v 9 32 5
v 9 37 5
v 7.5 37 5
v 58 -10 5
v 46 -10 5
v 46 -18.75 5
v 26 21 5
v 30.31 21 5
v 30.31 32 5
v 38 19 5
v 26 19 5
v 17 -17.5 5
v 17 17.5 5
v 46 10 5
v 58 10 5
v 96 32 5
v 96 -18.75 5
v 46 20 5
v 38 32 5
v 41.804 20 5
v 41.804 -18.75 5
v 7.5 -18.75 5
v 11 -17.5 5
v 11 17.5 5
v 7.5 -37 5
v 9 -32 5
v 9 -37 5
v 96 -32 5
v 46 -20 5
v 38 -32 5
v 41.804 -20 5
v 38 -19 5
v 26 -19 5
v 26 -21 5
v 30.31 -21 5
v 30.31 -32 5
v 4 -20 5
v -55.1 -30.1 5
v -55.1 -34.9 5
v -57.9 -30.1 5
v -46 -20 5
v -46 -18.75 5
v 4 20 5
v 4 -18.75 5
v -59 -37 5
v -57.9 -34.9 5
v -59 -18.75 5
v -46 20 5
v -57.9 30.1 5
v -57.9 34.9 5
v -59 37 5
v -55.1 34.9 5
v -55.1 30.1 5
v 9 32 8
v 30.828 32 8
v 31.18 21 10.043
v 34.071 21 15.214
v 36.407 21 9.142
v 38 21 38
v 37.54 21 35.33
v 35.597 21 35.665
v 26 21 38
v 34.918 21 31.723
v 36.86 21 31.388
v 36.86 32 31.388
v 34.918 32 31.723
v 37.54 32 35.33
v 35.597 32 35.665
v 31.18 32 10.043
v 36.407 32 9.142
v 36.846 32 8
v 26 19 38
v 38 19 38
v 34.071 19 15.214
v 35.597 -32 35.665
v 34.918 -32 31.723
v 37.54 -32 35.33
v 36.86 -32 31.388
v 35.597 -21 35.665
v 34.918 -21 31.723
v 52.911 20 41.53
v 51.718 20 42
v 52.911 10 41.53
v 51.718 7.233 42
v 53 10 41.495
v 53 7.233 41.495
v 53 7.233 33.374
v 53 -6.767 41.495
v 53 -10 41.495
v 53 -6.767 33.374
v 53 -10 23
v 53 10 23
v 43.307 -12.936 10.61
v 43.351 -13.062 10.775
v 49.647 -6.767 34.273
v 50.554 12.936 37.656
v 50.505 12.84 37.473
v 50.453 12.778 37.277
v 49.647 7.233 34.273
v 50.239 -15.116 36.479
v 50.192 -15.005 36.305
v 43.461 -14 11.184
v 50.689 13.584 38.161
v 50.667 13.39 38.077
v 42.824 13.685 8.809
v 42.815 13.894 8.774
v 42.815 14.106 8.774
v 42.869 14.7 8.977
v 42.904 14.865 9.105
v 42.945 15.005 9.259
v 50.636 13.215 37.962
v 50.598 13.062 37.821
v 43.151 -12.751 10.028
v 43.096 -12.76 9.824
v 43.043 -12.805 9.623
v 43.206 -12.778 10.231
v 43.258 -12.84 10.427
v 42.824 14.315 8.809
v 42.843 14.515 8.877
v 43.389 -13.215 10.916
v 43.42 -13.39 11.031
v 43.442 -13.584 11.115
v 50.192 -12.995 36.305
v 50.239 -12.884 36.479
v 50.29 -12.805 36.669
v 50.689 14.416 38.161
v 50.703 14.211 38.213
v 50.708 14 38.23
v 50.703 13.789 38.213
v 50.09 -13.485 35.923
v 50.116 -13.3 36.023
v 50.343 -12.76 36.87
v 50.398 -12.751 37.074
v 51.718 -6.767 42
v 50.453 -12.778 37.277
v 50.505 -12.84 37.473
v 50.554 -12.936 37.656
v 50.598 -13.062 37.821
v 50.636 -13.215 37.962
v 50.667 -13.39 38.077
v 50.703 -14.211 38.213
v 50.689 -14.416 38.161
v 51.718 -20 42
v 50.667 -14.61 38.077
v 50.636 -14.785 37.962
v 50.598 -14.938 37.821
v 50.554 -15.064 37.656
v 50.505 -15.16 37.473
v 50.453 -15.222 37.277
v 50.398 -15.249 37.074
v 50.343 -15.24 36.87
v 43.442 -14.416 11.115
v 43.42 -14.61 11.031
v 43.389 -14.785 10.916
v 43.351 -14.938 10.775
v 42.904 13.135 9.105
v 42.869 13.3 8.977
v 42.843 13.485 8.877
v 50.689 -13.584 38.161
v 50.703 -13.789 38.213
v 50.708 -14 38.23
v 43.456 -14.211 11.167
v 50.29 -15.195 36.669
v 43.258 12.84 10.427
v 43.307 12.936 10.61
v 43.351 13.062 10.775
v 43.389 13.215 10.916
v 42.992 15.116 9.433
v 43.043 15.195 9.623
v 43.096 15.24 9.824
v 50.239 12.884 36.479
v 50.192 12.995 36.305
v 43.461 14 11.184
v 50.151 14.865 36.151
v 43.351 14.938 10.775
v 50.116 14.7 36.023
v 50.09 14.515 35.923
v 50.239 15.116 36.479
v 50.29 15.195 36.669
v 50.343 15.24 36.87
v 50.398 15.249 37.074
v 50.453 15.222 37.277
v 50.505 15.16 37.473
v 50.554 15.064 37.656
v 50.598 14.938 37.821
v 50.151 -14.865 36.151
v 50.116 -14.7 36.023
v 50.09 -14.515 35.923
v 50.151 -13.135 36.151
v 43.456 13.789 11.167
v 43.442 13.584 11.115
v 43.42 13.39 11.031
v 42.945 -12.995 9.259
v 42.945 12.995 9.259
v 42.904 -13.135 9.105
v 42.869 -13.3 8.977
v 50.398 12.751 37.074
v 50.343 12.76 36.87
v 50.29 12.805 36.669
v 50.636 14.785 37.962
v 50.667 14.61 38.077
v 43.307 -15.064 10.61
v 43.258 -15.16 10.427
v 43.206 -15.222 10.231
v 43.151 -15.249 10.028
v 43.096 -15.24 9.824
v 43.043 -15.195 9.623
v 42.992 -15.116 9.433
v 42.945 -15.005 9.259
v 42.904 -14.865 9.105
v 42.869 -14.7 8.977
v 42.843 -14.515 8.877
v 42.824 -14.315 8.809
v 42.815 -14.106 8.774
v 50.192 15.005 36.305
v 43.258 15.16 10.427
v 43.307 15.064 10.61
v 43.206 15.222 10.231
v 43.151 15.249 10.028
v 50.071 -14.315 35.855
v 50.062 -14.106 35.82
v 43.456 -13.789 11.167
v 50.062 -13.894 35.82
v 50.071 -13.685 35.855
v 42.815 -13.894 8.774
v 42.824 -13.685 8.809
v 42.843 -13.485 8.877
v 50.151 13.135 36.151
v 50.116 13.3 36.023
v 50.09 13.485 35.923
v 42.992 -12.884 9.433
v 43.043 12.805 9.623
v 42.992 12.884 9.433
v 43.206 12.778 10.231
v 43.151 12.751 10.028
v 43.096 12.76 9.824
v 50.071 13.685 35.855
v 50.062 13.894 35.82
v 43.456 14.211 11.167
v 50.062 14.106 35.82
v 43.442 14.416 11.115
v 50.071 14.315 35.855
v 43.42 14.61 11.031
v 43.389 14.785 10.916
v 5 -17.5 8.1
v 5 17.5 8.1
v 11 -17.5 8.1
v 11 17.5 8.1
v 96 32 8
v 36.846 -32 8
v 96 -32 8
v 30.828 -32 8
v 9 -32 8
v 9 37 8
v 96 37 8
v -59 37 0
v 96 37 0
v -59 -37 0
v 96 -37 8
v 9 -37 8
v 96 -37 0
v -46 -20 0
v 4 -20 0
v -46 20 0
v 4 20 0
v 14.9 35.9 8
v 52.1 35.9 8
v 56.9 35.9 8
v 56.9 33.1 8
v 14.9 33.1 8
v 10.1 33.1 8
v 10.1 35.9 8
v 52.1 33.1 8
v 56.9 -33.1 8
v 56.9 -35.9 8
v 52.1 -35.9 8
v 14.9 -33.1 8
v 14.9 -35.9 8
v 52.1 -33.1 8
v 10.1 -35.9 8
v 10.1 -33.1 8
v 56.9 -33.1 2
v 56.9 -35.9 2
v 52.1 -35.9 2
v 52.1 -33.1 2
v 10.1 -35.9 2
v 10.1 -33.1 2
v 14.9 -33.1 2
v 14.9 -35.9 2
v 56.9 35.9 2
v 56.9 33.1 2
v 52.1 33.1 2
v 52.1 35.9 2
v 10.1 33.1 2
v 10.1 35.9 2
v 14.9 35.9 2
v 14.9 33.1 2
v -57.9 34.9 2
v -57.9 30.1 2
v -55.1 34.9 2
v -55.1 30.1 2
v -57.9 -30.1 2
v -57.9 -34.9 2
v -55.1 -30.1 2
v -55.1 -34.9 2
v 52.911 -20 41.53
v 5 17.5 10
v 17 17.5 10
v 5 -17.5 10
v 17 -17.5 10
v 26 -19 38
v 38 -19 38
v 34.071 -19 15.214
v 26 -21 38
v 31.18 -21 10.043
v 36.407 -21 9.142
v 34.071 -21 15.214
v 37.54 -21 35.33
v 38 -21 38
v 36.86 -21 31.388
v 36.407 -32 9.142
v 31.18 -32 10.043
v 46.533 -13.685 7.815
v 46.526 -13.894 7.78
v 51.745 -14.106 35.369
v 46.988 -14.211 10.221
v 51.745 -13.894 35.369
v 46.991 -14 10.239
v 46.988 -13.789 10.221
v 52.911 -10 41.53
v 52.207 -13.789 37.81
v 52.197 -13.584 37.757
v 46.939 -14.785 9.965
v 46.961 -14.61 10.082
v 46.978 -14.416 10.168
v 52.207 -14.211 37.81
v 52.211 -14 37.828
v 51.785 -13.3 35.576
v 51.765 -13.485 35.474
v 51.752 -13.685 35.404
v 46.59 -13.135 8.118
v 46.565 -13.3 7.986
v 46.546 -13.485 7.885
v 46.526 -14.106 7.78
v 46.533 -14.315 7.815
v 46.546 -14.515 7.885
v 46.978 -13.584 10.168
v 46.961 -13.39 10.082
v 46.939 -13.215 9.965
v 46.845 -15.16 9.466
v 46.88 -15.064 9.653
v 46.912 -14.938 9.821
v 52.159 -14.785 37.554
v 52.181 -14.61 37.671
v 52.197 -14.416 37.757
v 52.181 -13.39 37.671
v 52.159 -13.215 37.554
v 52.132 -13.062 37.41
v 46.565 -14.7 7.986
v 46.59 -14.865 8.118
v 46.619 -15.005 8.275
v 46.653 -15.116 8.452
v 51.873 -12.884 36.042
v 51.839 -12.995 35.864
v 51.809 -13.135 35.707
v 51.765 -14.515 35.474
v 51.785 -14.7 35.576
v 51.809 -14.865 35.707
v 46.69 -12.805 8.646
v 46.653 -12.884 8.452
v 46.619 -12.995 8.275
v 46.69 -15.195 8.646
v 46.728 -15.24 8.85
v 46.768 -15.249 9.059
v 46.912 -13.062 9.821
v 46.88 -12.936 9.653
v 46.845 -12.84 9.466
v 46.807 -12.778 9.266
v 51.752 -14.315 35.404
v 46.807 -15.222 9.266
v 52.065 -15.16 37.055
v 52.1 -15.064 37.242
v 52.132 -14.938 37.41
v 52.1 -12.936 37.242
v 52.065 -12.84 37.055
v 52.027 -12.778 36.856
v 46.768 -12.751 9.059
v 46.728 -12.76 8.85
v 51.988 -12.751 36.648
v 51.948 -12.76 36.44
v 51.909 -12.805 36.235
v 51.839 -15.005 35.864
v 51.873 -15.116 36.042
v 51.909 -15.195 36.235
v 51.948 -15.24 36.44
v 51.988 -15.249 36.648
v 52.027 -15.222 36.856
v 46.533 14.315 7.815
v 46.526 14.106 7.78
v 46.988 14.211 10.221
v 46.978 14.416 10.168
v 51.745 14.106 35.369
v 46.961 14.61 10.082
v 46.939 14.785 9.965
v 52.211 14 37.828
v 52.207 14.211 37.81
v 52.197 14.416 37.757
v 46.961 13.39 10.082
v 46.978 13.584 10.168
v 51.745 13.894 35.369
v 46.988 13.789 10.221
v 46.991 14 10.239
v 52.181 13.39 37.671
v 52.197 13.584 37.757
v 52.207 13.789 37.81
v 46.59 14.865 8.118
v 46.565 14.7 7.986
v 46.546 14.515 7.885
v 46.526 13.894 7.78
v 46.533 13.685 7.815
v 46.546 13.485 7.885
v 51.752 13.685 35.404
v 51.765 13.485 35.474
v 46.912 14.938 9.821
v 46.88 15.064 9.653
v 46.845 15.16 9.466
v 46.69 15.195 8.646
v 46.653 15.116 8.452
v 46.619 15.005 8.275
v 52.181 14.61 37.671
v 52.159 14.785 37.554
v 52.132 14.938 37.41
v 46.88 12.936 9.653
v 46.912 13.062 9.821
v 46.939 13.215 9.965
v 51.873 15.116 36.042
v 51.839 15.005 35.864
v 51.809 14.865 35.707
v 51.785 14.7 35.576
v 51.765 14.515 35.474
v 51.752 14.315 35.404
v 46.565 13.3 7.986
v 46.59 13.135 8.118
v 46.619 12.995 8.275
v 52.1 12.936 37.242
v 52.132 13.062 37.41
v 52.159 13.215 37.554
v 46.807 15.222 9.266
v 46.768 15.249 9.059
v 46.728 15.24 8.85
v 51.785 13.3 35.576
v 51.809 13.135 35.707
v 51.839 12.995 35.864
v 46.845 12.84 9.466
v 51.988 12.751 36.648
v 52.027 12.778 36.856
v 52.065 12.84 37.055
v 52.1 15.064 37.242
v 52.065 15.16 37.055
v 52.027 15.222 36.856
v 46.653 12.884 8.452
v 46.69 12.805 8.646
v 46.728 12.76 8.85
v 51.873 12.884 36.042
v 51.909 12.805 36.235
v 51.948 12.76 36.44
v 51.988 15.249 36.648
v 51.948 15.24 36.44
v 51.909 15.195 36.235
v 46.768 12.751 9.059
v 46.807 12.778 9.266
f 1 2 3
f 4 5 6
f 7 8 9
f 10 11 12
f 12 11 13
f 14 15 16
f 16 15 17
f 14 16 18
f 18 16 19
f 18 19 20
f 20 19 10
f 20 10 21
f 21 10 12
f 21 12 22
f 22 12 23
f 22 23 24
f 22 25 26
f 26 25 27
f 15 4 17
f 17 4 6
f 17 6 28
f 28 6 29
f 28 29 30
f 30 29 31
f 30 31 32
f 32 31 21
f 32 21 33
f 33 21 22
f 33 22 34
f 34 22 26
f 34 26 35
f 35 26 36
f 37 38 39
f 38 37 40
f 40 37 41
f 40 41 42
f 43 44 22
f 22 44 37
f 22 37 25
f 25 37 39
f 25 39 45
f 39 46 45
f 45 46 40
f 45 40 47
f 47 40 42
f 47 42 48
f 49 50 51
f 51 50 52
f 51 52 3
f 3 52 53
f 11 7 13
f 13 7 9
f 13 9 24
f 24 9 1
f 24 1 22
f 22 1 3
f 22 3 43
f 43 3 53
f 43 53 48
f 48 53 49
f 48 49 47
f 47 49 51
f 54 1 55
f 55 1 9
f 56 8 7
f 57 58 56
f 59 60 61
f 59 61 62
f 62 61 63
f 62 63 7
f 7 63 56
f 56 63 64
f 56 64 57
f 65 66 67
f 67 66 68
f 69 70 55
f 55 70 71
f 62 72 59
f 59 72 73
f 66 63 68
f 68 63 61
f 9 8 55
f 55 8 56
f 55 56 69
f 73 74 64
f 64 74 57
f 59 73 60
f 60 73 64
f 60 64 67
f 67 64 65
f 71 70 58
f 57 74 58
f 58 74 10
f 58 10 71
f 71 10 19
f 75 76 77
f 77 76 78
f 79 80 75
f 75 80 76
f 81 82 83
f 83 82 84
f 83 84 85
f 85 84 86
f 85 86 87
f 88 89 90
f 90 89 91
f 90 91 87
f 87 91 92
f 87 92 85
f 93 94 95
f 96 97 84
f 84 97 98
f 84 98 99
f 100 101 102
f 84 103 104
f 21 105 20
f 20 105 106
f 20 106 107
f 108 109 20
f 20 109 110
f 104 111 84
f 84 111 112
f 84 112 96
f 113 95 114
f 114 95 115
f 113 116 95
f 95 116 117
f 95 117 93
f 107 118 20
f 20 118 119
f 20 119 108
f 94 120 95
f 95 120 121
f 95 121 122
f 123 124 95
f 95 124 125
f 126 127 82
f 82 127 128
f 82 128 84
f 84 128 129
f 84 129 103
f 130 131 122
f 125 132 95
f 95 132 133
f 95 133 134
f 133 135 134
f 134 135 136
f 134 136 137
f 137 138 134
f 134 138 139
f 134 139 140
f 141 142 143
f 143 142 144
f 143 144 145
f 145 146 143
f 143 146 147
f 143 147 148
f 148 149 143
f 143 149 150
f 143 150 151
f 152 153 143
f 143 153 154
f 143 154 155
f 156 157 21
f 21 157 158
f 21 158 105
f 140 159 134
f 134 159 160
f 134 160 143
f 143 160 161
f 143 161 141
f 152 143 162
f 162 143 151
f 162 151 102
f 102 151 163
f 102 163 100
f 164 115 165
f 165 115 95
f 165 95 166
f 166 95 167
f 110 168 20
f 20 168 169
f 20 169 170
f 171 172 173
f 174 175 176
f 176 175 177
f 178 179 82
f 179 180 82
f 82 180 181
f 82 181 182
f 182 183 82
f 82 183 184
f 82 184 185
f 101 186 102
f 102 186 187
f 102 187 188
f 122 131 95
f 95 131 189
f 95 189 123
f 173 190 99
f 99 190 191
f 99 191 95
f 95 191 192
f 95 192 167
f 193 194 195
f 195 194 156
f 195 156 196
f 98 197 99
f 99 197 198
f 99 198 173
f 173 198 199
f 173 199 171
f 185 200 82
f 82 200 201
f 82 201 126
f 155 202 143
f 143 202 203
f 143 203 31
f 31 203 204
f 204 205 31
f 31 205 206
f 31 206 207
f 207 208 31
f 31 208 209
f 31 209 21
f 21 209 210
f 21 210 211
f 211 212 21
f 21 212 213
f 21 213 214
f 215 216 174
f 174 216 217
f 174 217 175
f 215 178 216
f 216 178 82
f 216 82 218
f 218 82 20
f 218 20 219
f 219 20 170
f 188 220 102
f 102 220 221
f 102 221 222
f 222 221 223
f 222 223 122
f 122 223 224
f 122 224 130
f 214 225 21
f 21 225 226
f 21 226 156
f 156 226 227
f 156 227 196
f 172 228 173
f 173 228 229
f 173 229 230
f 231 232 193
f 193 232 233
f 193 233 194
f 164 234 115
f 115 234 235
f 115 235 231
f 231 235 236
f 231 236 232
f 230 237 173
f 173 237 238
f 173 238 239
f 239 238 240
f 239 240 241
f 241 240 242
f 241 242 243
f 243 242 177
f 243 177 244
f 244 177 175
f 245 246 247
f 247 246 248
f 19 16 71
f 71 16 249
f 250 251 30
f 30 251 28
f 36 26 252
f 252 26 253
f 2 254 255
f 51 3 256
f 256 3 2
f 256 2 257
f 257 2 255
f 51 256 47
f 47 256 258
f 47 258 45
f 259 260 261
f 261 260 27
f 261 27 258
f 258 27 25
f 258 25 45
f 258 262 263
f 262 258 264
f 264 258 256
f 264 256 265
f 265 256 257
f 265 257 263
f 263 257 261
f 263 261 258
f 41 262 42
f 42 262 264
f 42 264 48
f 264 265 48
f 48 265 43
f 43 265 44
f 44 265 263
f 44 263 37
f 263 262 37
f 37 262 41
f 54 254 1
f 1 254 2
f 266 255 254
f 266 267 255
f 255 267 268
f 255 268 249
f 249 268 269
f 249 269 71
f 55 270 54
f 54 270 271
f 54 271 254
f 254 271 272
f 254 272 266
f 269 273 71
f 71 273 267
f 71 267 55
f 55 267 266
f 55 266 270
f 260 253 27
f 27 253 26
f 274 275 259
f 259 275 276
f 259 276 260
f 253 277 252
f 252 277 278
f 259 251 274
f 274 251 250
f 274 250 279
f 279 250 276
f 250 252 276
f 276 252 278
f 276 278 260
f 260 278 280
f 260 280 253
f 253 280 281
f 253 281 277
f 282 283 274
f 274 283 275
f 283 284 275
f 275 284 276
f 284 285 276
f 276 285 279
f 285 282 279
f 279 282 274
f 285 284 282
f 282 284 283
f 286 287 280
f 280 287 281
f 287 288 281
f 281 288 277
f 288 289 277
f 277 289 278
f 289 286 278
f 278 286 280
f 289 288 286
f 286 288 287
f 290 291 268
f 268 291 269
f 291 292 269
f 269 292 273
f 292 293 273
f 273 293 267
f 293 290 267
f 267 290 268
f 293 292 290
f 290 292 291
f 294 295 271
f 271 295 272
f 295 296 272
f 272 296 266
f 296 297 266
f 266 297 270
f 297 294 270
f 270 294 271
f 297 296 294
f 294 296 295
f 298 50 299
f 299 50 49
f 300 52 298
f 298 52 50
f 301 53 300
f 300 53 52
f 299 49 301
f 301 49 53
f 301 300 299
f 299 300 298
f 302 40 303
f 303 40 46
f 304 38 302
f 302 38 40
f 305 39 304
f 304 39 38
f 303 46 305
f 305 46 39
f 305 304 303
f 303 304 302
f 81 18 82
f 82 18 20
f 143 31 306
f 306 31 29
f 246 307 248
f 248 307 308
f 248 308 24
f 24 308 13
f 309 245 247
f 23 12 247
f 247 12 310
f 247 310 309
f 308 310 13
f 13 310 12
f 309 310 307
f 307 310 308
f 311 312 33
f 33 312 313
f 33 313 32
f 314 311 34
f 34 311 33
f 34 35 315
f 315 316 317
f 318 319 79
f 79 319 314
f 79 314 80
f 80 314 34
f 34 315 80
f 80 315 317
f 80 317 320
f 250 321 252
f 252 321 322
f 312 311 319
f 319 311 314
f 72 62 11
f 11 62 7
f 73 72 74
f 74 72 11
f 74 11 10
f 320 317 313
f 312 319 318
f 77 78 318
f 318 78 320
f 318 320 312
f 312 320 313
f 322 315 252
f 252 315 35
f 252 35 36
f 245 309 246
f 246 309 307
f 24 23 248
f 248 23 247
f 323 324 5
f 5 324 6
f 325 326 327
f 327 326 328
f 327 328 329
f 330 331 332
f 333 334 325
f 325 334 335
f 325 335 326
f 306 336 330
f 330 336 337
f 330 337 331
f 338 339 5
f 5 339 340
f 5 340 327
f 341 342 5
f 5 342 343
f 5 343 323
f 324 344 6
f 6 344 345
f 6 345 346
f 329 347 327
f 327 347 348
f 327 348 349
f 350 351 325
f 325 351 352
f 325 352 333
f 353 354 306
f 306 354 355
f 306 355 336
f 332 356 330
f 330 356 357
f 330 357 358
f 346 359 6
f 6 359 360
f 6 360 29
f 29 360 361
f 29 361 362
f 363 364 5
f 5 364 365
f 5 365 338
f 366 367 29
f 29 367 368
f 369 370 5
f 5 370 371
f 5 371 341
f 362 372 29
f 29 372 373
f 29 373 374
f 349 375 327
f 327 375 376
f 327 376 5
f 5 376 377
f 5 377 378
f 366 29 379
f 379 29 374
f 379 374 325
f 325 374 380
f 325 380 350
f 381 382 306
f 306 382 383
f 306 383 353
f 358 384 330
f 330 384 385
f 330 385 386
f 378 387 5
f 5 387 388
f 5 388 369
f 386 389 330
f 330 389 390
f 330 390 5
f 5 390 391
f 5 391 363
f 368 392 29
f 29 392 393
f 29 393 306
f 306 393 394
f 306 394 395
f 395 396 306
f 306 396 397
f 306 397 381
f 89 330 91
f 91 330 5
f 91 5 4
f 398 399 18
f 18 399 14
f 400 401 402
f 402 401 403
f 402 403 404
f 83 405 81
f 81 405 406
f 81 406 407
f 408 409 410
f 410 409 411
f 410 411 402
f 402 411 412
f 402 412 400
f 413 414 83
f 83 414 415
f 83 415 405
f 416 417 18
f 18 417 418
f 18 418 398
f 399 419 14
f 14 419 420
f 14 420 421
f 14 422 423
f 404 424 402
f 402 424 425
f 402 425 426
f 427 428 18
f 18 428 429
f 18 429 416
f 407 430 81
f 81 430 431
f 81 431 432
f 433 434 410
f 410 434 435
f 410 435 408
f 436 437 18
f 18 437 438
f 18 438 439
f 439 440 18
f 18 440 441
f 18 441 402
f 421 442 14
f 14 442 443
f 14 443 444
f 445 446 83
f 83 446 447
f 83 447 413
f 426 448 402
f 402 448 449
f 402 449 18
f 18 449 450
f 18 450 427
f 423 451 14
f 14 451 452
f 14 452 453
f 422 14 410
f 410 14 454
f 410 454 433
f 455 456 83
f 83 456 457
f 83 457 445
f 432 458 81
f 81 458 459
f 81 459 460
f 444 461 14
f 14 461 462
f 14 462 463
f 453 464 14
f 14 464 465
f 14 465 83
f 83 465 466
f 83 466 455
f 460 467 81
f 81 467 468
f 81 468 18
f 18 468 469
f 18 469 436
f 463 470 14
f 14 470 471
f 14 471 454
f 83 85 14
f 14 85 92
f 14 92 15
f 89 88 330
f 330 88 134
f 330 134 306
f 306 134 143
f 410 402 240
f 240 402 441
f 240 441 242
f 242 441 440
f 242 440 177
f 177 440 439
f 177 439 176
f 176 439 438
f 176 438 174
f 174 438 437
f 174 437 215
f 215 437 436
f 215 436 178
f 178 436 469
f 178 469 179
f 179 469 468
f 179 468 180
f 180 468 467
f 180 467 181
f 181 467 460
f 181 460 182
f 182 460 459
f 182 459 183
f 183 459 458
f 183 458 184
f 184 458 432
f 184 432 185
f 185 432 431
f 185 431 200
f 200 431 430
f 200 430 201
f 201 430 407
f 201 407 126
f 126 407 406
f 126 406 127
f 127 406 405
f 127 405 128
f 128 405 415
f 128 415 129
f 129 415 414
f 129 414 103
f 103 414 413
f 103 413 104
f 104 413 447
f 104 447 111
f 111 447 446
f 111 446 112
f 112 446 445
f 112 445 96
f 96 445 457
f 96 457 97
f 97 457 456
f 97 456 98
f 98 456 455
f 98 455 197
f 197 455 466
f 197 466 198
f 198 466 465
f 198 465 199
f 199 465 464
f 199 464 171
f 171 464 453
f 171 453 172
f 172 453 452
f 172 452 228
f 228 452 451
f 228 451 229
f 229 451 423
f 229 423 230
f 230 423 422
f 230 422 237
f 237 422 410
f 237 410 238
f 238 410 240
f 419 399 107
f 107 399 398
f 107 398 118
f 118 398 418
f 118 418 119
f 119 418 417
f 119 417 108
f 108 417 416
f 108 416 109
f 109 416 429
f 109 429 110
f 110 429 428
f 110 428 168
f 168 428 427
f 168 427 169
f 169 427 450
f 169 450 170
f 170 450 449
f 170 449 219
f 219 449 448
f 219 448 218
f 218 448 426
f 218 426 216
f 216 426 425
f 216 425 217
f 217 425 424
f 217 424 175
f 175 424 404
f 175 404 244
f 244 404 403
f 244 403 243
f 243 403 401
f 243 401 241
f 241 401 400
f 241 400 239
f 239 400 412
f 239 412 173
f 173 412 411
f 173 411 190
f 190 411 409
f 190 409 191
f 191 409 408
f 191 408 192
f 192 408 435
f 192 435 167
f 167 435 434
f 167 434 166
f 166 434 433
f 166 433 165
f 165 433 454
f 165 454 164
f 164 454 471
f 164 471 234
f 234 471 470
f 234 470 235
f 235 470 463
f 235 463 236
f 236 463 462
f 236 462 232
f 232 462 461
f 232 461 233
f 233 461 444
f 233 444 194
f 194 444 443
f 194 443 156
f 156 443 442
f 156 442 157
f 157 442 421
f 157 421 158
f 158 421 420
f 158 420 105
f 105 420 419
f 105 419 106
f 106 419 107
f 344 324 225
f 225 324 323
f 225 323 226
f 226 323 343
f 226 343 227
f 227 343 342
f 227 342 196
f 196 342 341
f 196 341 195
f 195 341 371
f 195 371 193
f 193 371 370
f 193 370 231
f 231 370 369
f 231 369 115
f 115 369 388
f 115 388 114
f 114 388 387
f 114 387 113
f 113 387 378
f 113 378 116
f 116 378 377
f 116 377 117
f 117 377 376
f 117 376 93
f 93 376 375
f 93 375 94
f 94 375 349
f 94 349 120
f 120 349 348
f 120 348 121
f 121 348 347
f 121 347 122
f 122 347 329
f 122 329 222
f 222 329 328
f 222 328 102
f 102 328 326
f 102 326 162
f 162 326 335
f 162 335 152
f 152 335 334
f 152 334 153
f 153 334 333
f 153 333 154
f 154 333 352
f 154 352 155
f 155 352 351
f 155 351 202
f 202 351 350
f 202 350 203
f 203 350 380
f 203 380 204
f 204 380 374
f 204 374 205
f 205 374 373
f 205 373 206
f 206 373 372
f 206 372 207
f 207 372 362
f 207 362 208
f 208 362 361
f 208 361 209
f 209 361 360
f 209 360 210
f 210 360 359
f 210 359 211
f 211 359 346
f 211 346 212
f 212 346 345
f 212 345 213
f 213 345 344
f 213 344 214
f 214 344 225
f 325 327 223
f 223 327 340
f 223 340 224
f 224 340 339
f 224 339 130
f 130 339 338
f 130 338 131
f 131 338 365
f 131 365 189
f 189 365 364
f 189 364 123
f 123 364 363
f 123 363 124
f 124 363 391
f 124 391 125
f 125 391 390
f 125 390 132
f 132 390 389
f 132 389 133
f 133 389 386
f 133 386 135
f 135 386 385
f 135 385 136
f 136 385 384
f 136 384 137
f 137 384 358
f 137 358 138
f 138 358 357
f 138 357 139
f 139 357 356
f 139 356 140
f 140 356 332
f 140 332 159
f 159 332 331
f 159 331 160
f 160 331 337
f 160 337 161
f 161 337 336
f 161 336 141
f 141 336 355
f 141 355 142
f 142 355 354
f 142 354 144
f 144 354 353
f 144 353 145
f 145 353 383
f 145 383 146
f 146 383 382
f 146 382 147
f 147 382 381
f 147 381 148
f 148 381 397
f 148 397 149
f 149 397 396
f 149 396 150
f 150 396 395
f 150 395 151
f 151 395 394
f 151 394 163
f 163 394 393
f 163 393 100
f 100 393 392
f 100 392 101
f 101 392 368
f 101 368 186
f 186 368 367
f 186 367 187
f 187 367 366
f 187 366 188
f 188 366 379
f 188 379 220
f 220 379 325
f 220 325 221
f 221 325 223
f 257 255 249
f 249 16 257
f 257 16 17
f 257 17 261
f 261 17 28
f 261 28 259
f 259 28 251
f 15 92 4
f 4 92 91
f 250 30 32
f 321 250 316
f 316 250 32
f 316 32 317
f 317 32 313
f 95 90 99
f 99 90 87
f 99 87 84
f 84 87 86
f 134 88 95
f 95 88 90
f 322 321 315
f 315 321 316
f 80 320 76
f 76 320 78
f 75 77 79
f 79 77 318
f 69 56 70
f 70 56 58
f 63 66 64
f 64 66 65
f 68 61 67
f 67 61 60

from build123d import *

# Parameters (mm, degrees)
CROQUIS1_W               = 118
CROQUIS1_H               = 74
SALIENTE_EXTRUIR1_DEPTH  = 5
CROQUIS2_W               = 50
CROQUIS2_H               = 40
CORTAR_EXTRUIR1_DEPTH    = 5
CROQUIS3_W               = 50
CROQUIS3_H               = 5
SALIENTE_EXTRUIR2_DEPTH  = 3
CROQUIS4_W               = 4.8
CROQUIS4_H               = 2.8
CROQUIS4_W_2             = 2.8
CROQUIS4_H_2             = 4.8
CORTAR_EXTRUIR2_DEPTH    = 6
CROQUIS5_W               = 3
CROQUIS5_H               = 40
CORTAR_EXTRUIR3_DEPTH    = 3
CROQUIS6_W               = 12
CROQUIS6_H               = 40
SALIENTE_EXTRUIR3_DEPTH  = 40
CROQUIS8_W               = 4
CROQUIS8_H               = 35
SALIENTE_EXTRUIR5_DEPTH  = 5
SALIENTE_EXTRUIR7_DEPTH  = 33
CORTAR_EXTRUIR6_DEPTH    = 11
CORTAR_EXTRUIR7_DEPTH    = 13
CORTAR_EXTRUIR8_DEPTH    = 13
CORTAR_EXTRUIR9_DEPTH    = 11
CROQUIS10_W              = 1.9
CROQUIS10_H              = 35
SALIENTE_EXTRUIR9_DEPTH  = 8
CROQUIS22_W              = 3.1
CROQUIS22_H              = 35
SALIENTE_EXTRUIR10_DEPTH = 2
CORTAR_EXTRUIR11_DEPTH   = 40
CROQUIS23_W              = 3
CROQUIS23_H              = 40
SALIENTE_EXTRUIR11_DEPTH = 10
CORTAR_EXTRUIR12_DEPTH   = 10
CORTAR_EXTRUIR13_DEPTH   = 10
CORTAR_EXTRUIR14_DEPTH   = 40
CROQUIS28_R              = 1.25
CORTAR_EXTRUIR15_DEPTH   = 5
SALIENTE_EXTRUIR12_DEPTH = 37
CROQUIS30_W              = 29.42787794
CROQUIS30_H              = 11
SALIENTE_EXTRUIR13_DEPTH = 1.970920231
CHAFL_N1_SIZE            = 5
CHAFL_N1_SIZE2           = 18
CHAFL_N2_SIZE            = 5
CHAFL_N2_SIZE_2          = 13
CHAFL_N3_SIZE            = 5
CHAFL_N3_SIZE_2          = 13
CROQUIS51_W              = 8
CROQUIS51_H              = 14
CORTAR_EXTRUIR23_DEPTH   = 10
CROQUIS52_W              = 9
CROQUIS52_H              = 11
CROQUIS52_W_2            = 8
CROQUIS52_W_3            = 4.539822883
CORTAR_EXTRUIR25_DEPTH   = 10
SALIENTE_EXTRUIR20_DEPTH = 12
CROQUIS54_W              = 5
CROQUIS54_H              = 11
CORTAR_EXTRUIR26_DEPTH   = 10
CROQUIS55_W              = 5
CROQUIS55_H              = 11
CORTAR_EXTRUIR30_DEPTH   = 10


with BuildPart() as part:
    # Croquis1 → Saliente-Extruir1 (new body)
    with BuildSketch(Plane.XY):
        Rectangle(CROQUIS1_W, CROQUIS1_H)
    extrude(amount=SALIENTE_EXTRUIR1_DEPTH)

    # Croquis2 → Cortar-Extruir1 (cut)
    with BuildSketch(Plane.XY.offset(5)):
        with Locations((-21, 0)):
            Rectangle(CROQUIS2_W, CROQUIS2_H)
    extrude(amount=-CORTAR_EXTRUIR1_DEPTH, mode=Mode.SUBTRACT)

    # Croquis3 → Saliente-Extruir2 (add)
    with BuildSketch(Plane.XY.offset(5)):
        with Locations((34, 34.5)):
            Rectangle(CROQUIS3_W, CROQUIS3_H)
        with Locations((34, -34.5)):
            Rectangle(CROQUIS3_W, CROQUIS3_H)
    extrude(amount=SALIENTE_EXTRUIR2_DEPTH)

    # Croquis4 → Cortar-Extruir2 (cut)
    with BuildSketch(Plane.XY.offset(8)):
        with Locations((54.5, 34.5)):
            Rectangle(CROQUIS4_W, CROQUIS4_H)
        with Locations((12.5, 34.5)):
            Rectangle(CROQUIS4_W, CROQUIS4_H)
        with Locations((12.5, -34.5)):
            Rectangle(CROQUIS4_W, CROQUIS4_H)
        with Locations((54.5, -34.5)):
            Rectangle(CROQUIS4_W, CROQUIS4_H)
        with Locations((-56.5, -32.5)):
            Rectangle(CROQUIS4_W_2, CROQUIS4_H_2)
        with Locations((-56.5, 32.5)):
            Rectangle(CROQUIS4_W_2, CROQUIS4_H_2)
    extrude(amount=-CORTAR_EXTRUIR2_DEPTH, mode=Mode.SUBTRACT)

    # Croquis5 → Cortar-Extruir3 (cut)
    with BuildSketch(Plane.XY.offset(5)):
        with Locations((39.5, 0)):
            Rectangle(CROQUIS5_W, CROQUIS5_H)
    extrude(amount=-CORTAR_EXTRUIR3_DEPTH, mode=Mode.SUBTRACT)

    # Croquis6 → Saliente-Extruir3 (add)
    with BuildSketch(Plane.XY.offset(2)):
        with Locations((47, 0)):
            Rectangle(CROQUIS6_W, CROQUIS6_H)
    extrude(amount=SALIENTE_EXTRUIR3_DEPTH)

    # Croquis8 → Saliente-Extruir5 (add)
    with BuildSketch(Plane.XY.offset(5)):
        with Locations((15, 0)):
            Rectangle(CROQUIS8_W, CROQUIS8_H)
    extrude(amount=SALIENTE_EXTRUIR5_DEPTH)

    # Croquis12 → Saliente-Extruir7 (add)
    with BuildSketch(Plane.XY.offset(5)):
        Polygon((26, -19), (38, -19), (38, -32), (31, -32), (31, -21), (26, -21), align=None)
        Polygon((31, 32), (38, 32), (38, 19), (26, 19), (26, 21), (31, 21), align=None)
    extrude(amount=SALIENTE_EXTRUIR7_DEPTH)

    # Croquis14 → Cortar-Extruir6 (cut)
    with BuildSketch(Plane(origin=(0, 32, 0), x_dir=(1, 0, 0), z_dir=(0, 1, 0))):
        Polygon((31, -38), (36, -38), (31, -9), align=None)
    extrude(amount=-CORTAR_EXTRUIR6_DEPTH, mode=Mode.SUBTRACT)

    # Croquis16 → Cortar-Extruir7 (cut)
    with BuildSketch(Plane.XZ.offset(-19)):
        Polygon((38, 38), (38, 5), (33, 5), (33, 9), align=None)
    extrude(amount=-CORTAR_EXTRUIR7_DEPTH, mode=Mode.SUBTRACT)

    # Croquis17 → Cortar-Extruir8 (cut)
    with BuildSketch(Plane.XZ.offset(32)):
        Polygon((38, 38), (38, 5), (33, 5), (33, 9), align=None)
    extrude(amount=-CORTAR_EXTRUIR8_DEPTH, mode=Mode.SUBTRACT)

    # Croquis18 → Cortar-Extruir9 (cut)
    with BuildSketch(Plane.XZ.offset(32)):
        Polygon((31, 38), (36, 38), (31, 9), align=None)
    extrude(amount=-CORTAR_EXTRUIR9_DEPTH, mode=Mode.SUBTRACT)

    # Croquis10 → Saliente-Extruir9 (add)
    with BuildSketch(Plane.ZY.offset(-13)):
        with Locations((9.05, 0)):
            Rectangle(CROQUIS10_W, CROQUIS10_H)
    extrude(amount=SALIENTE_EXTRUIR9_DEPTH)

    # Croquis22 → Saliente-Extruir10 (add)
    with BuildSketch(Plane.ZY.offset(-13)):
        with Locations((6.55, 0)):
            Rectangle(CROQUIS22_W, CROQUIS22_H)
    extrude(amount=SALIENTE_EXTRUIR10_DEPTH)

    # Croquis7 → Cortar-Extruir11 (cut)
    with BuildSketch(Plane.XZ.offset(20)):
        Polygon((51.717967697, 42), (41, 2), (41, 42), align=None)
    extrude(amount=-CORTAR_EXTRUIR11_DEPTH, mode=Mode.SUBTRACT)

    # Croquis23 → Saliente-Extruir11 (add)
    with BuildSketch(Plane(origin=(38, 0, 0), x_dir=(0, 0, -1), z_dir=(1, 0, 0))):
        with Locations((-3.5, 0)):
            Rectangle(CROQUIS23_W, CROQUIS23_H)
    extrude(amount=SALIENTE_EXTRUIR11_DEPTH)

    # Croquis25 → Cortar-Extruir12 (cut)
    with BuildSketch(Plane.XZ.offset(20)):
        Polygon((53, 42), (53, 5), (46, 5), align=None)
    extrude(amount=-CORTAR_EXTRUIR12_DEPTH, mode=Mode.SUBTRACT)

    # Croquis26 → Cortar-Extruir13 (cut)
    with BuildSketch(Plane(origin=(0, 20, 0), x_dir=(1, 0, 0), z_dir=(0, 1, 0))):
        Polygon((53, -5), (53, -42), (46, -5), align=None)
    extrude(amount=-CORTAR_EXTRUIR13_DEPTH, mode=Mode.SUBTRACT)

    # Croquis27 → Cortar-Extruir14 (cut)
    with BuildSketch(Plane.XZ.offset(20)):
        Polygon((51.717967697, 42), (53, 42), (53, 41.49489384), align=None)
    extrude(amount=-CORTAR_EXTRUIR14_DEPTH, mode=Mode.SUBTRACT)

    # Croquis28 → Cortar-Extruir15 (cut)
    with BuildSketch(Plane(origin=(37.753520778, 0, -10.116025404), x_dir=(0.25881904510251397, 0, 0.9659258262890701), z_dir=(-0.9659258262890701, 0, 0.25881904510251397))):
        with Locations((20.801870381, 14)):
            Circle(CROQUIS28_R)
        with Locations((48.801870381, 14)):
            Circle(CROQUIS28_R)
        with Locations((48.801870381, -14)):
            Circle(CROQUIS28_R)
        with Locations((20.801870381, -14)):
            Circle(CROQUIS28_R)
    extrude(amount=-CORTAR_EXTRUIR15_DEPTH, mode=Mode.SUBTRACT)

    # Croquis29 → Saliente-Extruir12 (add)
    with BuildSketch(Plane(origin=(59, 0, 0), x_dir=(0, 0, -1), z_dir=(1, 0, 0))):
        Polygon((-8, 37), (0, 37), (0, -37), (-8, -37), (-8, -32), (-5, -32), (-5, 32), (-8, 32), align=None)
    extrude(amount=SALIENTE_EXTRUIR12_DEPTH)

    # Croquis30 → Saliente-Extruir13 (add)
    with BuildSketch(Plane(origin=(28.598152425, 0, -4.930715935), x_dir=(0.1699069165076461, 0, 0.9854601157443481), z_dir=(-0.9854601157443481, 0, 0.1699069165076461))):
        with Locations((28.850194423, 26.5)):
            Rectangle(CROQUIS30_W, CROQUIS30_H)
    saliente_extruir13 = extrude(amount=-SALIENTE_EXTRUIR13_DEPTH)

    # Simetría3: Saliente-Extruir13 across plane
    add(saliente_extruir13.mirror(Plane.ZX))

    # Chaflán1
    chafl_n1_edges = [part.edges().sort_by_distance(p)[0] for p in [
        (53, 0, 5),
    ]]
    chafl_n1_side = [part.faces().sort_by_distance(p)[0] for p in [
        (23.870652036, 0, 5),
    ]]
    chamfer(chafl_n1_edges, length=CHAFL_N1_SIZE, length2=CHAFL_N1_SIZE2, reference=chafl_n1_side[0])

    # Chaflán2
    # the kernel refuses this chamfer: 13, 5 mm, written as the material it adds along each edge
    with BuildSketch(Plane(origin=(33, 19, 5), x_dir=(0.9956504543602249, 0, -0.09316744459454417), z_dir=(0, 1, 0))) as chafl_n2_piece_1:
        Polygon((CHAFL_N2_SIZE * 0.99565045436, -CHAFL_N2_SIZE * 0.0931674445945), (-CHAFL_N2_SIZE_2 * 0.0931674445945, -CHAFL_N2_SIZE_2 * 0.99565045436), (0, 0), align=None)
    extrude(amount=13)

    # Chaflán3
    # the kernel refuses this chamfer: 13, 5 mm, written as the material it adds along each edge
    with BuildSketch(Plane(origin=(33, -32, 5), x_dir=(0.9956504543602249, 0, -0.09316744459454485), z_dir=(0, 1, 0))) as chafl_n3_piece_1:
        Polygon((CHAFL_N3_SIZE * 0.99565045436, -CHAFL_N3_SIZE * 0.0931674445945), (-CHAFL_N3_SIZE_2 * 0.0931674445945, -CHAFL_N3_SIZE_2 * 0.99565045436), (0, 0), align=None)
    extrude(amount=13)

    # Croquis51 → Cortar-Extruir23 (cut)
    with BuildSketch(Plane(origin=(37.753520778, 0, -10.116025404), x_dir=(0.2588190451025144, 0, 0.96592582628907), z_dir=(-0.96592582628907, 0, 0.2588190451025144))):
        with Locations((49.954479718, 0.233117344)):
            Rectangle(CROQUIS51_W, CROQUIS51_H)
    extrude(amount=-CORTAR_EXTRUIR23_DEPTH, mode=Mode.SUBTRACT)

    # Croquis52 → Cortar-Extruir25 (cut)
    with BuildSketch(Plane(origin=(28.598152425, 0, -4.930715935), x_dir=(0.1699069165076461, 0, 0.985460115744348), z_dir=(-0.985460115744348, 0, 0.1699069165076461))):
        with Locations((19.69441499, -26.5)):
            Rectangle(CROQUIS52_W, CROQUIS52_H)
        with Locations((33.19441499, -26.5)):
            Rectangle(CROQUIS52_W_2, CROQUIS52_H)
        with Locations((43.464326432, -26.5)):
            Rectangle(CROQUIS52_W_3, CROQUIS52_H)
    cortar_extruir25 = extrude(amount=-CORTAR_EXTRUIR25_DEPTH, mode=Mode.SUBTRACT)

    # Croquis53 → Saliente-Extruir20 (add)
    with BuildSketch(Plane.XZ.offset(32)):
        Polygon((31, 9), (30.122515807, 3.910591681), (31.179788624, 3.910591681), align=None)
    saliente_extruir20 = extrude(amount=-SALIENTE_EXTRUIR20_DEPTH)

    # Simetría8: Cortar-Extruir25, Saliente-Extruir20 across plane
    add(cortar_extruir25.mirror(Plane.ZX), mode=Mode.SUBTRACT)
    add(saliente_extruir20.mirror(Plane.ZX))

    # Croquis54 → Cortar-Extruir26 (cut)
    with BuildSketch(Plane(origin=(28.598152425, 0, -4.930715935), x_dir=(0.16990691650764617, 0, 0.985460115744348), z_dir=(-0.985460115744348, 0, 0.16990691650764617))):
        with Locations((26.69441499, 26.5)):
            Rectangle(CROQUIS54_W, CROQUIS54_H)
    extrude(amount=-CORTAR_EXTRUIR26_DEPTH, mode=Mode.SUBTRACT)

    # Croquis55 → Cortar-Extruir30 (cut)
    with BuildSketch(Plane(origin=(28.598152425, 0, -4.930715935), x_dir=(0.16990691650764617, 0, 0.985460115744348), z_dir=(-0.985460115744348, 0, 0.16990691650764617))):
        with Locations((26.69441499, -26.5)):
            Rectangle(CROQUIS55_W, CROQUIS55_H)
    extrude(amount=-CORTAR_EXTRUIR30_DEPTH, mode=Mode.SUBTRACT)


solid = part.part
